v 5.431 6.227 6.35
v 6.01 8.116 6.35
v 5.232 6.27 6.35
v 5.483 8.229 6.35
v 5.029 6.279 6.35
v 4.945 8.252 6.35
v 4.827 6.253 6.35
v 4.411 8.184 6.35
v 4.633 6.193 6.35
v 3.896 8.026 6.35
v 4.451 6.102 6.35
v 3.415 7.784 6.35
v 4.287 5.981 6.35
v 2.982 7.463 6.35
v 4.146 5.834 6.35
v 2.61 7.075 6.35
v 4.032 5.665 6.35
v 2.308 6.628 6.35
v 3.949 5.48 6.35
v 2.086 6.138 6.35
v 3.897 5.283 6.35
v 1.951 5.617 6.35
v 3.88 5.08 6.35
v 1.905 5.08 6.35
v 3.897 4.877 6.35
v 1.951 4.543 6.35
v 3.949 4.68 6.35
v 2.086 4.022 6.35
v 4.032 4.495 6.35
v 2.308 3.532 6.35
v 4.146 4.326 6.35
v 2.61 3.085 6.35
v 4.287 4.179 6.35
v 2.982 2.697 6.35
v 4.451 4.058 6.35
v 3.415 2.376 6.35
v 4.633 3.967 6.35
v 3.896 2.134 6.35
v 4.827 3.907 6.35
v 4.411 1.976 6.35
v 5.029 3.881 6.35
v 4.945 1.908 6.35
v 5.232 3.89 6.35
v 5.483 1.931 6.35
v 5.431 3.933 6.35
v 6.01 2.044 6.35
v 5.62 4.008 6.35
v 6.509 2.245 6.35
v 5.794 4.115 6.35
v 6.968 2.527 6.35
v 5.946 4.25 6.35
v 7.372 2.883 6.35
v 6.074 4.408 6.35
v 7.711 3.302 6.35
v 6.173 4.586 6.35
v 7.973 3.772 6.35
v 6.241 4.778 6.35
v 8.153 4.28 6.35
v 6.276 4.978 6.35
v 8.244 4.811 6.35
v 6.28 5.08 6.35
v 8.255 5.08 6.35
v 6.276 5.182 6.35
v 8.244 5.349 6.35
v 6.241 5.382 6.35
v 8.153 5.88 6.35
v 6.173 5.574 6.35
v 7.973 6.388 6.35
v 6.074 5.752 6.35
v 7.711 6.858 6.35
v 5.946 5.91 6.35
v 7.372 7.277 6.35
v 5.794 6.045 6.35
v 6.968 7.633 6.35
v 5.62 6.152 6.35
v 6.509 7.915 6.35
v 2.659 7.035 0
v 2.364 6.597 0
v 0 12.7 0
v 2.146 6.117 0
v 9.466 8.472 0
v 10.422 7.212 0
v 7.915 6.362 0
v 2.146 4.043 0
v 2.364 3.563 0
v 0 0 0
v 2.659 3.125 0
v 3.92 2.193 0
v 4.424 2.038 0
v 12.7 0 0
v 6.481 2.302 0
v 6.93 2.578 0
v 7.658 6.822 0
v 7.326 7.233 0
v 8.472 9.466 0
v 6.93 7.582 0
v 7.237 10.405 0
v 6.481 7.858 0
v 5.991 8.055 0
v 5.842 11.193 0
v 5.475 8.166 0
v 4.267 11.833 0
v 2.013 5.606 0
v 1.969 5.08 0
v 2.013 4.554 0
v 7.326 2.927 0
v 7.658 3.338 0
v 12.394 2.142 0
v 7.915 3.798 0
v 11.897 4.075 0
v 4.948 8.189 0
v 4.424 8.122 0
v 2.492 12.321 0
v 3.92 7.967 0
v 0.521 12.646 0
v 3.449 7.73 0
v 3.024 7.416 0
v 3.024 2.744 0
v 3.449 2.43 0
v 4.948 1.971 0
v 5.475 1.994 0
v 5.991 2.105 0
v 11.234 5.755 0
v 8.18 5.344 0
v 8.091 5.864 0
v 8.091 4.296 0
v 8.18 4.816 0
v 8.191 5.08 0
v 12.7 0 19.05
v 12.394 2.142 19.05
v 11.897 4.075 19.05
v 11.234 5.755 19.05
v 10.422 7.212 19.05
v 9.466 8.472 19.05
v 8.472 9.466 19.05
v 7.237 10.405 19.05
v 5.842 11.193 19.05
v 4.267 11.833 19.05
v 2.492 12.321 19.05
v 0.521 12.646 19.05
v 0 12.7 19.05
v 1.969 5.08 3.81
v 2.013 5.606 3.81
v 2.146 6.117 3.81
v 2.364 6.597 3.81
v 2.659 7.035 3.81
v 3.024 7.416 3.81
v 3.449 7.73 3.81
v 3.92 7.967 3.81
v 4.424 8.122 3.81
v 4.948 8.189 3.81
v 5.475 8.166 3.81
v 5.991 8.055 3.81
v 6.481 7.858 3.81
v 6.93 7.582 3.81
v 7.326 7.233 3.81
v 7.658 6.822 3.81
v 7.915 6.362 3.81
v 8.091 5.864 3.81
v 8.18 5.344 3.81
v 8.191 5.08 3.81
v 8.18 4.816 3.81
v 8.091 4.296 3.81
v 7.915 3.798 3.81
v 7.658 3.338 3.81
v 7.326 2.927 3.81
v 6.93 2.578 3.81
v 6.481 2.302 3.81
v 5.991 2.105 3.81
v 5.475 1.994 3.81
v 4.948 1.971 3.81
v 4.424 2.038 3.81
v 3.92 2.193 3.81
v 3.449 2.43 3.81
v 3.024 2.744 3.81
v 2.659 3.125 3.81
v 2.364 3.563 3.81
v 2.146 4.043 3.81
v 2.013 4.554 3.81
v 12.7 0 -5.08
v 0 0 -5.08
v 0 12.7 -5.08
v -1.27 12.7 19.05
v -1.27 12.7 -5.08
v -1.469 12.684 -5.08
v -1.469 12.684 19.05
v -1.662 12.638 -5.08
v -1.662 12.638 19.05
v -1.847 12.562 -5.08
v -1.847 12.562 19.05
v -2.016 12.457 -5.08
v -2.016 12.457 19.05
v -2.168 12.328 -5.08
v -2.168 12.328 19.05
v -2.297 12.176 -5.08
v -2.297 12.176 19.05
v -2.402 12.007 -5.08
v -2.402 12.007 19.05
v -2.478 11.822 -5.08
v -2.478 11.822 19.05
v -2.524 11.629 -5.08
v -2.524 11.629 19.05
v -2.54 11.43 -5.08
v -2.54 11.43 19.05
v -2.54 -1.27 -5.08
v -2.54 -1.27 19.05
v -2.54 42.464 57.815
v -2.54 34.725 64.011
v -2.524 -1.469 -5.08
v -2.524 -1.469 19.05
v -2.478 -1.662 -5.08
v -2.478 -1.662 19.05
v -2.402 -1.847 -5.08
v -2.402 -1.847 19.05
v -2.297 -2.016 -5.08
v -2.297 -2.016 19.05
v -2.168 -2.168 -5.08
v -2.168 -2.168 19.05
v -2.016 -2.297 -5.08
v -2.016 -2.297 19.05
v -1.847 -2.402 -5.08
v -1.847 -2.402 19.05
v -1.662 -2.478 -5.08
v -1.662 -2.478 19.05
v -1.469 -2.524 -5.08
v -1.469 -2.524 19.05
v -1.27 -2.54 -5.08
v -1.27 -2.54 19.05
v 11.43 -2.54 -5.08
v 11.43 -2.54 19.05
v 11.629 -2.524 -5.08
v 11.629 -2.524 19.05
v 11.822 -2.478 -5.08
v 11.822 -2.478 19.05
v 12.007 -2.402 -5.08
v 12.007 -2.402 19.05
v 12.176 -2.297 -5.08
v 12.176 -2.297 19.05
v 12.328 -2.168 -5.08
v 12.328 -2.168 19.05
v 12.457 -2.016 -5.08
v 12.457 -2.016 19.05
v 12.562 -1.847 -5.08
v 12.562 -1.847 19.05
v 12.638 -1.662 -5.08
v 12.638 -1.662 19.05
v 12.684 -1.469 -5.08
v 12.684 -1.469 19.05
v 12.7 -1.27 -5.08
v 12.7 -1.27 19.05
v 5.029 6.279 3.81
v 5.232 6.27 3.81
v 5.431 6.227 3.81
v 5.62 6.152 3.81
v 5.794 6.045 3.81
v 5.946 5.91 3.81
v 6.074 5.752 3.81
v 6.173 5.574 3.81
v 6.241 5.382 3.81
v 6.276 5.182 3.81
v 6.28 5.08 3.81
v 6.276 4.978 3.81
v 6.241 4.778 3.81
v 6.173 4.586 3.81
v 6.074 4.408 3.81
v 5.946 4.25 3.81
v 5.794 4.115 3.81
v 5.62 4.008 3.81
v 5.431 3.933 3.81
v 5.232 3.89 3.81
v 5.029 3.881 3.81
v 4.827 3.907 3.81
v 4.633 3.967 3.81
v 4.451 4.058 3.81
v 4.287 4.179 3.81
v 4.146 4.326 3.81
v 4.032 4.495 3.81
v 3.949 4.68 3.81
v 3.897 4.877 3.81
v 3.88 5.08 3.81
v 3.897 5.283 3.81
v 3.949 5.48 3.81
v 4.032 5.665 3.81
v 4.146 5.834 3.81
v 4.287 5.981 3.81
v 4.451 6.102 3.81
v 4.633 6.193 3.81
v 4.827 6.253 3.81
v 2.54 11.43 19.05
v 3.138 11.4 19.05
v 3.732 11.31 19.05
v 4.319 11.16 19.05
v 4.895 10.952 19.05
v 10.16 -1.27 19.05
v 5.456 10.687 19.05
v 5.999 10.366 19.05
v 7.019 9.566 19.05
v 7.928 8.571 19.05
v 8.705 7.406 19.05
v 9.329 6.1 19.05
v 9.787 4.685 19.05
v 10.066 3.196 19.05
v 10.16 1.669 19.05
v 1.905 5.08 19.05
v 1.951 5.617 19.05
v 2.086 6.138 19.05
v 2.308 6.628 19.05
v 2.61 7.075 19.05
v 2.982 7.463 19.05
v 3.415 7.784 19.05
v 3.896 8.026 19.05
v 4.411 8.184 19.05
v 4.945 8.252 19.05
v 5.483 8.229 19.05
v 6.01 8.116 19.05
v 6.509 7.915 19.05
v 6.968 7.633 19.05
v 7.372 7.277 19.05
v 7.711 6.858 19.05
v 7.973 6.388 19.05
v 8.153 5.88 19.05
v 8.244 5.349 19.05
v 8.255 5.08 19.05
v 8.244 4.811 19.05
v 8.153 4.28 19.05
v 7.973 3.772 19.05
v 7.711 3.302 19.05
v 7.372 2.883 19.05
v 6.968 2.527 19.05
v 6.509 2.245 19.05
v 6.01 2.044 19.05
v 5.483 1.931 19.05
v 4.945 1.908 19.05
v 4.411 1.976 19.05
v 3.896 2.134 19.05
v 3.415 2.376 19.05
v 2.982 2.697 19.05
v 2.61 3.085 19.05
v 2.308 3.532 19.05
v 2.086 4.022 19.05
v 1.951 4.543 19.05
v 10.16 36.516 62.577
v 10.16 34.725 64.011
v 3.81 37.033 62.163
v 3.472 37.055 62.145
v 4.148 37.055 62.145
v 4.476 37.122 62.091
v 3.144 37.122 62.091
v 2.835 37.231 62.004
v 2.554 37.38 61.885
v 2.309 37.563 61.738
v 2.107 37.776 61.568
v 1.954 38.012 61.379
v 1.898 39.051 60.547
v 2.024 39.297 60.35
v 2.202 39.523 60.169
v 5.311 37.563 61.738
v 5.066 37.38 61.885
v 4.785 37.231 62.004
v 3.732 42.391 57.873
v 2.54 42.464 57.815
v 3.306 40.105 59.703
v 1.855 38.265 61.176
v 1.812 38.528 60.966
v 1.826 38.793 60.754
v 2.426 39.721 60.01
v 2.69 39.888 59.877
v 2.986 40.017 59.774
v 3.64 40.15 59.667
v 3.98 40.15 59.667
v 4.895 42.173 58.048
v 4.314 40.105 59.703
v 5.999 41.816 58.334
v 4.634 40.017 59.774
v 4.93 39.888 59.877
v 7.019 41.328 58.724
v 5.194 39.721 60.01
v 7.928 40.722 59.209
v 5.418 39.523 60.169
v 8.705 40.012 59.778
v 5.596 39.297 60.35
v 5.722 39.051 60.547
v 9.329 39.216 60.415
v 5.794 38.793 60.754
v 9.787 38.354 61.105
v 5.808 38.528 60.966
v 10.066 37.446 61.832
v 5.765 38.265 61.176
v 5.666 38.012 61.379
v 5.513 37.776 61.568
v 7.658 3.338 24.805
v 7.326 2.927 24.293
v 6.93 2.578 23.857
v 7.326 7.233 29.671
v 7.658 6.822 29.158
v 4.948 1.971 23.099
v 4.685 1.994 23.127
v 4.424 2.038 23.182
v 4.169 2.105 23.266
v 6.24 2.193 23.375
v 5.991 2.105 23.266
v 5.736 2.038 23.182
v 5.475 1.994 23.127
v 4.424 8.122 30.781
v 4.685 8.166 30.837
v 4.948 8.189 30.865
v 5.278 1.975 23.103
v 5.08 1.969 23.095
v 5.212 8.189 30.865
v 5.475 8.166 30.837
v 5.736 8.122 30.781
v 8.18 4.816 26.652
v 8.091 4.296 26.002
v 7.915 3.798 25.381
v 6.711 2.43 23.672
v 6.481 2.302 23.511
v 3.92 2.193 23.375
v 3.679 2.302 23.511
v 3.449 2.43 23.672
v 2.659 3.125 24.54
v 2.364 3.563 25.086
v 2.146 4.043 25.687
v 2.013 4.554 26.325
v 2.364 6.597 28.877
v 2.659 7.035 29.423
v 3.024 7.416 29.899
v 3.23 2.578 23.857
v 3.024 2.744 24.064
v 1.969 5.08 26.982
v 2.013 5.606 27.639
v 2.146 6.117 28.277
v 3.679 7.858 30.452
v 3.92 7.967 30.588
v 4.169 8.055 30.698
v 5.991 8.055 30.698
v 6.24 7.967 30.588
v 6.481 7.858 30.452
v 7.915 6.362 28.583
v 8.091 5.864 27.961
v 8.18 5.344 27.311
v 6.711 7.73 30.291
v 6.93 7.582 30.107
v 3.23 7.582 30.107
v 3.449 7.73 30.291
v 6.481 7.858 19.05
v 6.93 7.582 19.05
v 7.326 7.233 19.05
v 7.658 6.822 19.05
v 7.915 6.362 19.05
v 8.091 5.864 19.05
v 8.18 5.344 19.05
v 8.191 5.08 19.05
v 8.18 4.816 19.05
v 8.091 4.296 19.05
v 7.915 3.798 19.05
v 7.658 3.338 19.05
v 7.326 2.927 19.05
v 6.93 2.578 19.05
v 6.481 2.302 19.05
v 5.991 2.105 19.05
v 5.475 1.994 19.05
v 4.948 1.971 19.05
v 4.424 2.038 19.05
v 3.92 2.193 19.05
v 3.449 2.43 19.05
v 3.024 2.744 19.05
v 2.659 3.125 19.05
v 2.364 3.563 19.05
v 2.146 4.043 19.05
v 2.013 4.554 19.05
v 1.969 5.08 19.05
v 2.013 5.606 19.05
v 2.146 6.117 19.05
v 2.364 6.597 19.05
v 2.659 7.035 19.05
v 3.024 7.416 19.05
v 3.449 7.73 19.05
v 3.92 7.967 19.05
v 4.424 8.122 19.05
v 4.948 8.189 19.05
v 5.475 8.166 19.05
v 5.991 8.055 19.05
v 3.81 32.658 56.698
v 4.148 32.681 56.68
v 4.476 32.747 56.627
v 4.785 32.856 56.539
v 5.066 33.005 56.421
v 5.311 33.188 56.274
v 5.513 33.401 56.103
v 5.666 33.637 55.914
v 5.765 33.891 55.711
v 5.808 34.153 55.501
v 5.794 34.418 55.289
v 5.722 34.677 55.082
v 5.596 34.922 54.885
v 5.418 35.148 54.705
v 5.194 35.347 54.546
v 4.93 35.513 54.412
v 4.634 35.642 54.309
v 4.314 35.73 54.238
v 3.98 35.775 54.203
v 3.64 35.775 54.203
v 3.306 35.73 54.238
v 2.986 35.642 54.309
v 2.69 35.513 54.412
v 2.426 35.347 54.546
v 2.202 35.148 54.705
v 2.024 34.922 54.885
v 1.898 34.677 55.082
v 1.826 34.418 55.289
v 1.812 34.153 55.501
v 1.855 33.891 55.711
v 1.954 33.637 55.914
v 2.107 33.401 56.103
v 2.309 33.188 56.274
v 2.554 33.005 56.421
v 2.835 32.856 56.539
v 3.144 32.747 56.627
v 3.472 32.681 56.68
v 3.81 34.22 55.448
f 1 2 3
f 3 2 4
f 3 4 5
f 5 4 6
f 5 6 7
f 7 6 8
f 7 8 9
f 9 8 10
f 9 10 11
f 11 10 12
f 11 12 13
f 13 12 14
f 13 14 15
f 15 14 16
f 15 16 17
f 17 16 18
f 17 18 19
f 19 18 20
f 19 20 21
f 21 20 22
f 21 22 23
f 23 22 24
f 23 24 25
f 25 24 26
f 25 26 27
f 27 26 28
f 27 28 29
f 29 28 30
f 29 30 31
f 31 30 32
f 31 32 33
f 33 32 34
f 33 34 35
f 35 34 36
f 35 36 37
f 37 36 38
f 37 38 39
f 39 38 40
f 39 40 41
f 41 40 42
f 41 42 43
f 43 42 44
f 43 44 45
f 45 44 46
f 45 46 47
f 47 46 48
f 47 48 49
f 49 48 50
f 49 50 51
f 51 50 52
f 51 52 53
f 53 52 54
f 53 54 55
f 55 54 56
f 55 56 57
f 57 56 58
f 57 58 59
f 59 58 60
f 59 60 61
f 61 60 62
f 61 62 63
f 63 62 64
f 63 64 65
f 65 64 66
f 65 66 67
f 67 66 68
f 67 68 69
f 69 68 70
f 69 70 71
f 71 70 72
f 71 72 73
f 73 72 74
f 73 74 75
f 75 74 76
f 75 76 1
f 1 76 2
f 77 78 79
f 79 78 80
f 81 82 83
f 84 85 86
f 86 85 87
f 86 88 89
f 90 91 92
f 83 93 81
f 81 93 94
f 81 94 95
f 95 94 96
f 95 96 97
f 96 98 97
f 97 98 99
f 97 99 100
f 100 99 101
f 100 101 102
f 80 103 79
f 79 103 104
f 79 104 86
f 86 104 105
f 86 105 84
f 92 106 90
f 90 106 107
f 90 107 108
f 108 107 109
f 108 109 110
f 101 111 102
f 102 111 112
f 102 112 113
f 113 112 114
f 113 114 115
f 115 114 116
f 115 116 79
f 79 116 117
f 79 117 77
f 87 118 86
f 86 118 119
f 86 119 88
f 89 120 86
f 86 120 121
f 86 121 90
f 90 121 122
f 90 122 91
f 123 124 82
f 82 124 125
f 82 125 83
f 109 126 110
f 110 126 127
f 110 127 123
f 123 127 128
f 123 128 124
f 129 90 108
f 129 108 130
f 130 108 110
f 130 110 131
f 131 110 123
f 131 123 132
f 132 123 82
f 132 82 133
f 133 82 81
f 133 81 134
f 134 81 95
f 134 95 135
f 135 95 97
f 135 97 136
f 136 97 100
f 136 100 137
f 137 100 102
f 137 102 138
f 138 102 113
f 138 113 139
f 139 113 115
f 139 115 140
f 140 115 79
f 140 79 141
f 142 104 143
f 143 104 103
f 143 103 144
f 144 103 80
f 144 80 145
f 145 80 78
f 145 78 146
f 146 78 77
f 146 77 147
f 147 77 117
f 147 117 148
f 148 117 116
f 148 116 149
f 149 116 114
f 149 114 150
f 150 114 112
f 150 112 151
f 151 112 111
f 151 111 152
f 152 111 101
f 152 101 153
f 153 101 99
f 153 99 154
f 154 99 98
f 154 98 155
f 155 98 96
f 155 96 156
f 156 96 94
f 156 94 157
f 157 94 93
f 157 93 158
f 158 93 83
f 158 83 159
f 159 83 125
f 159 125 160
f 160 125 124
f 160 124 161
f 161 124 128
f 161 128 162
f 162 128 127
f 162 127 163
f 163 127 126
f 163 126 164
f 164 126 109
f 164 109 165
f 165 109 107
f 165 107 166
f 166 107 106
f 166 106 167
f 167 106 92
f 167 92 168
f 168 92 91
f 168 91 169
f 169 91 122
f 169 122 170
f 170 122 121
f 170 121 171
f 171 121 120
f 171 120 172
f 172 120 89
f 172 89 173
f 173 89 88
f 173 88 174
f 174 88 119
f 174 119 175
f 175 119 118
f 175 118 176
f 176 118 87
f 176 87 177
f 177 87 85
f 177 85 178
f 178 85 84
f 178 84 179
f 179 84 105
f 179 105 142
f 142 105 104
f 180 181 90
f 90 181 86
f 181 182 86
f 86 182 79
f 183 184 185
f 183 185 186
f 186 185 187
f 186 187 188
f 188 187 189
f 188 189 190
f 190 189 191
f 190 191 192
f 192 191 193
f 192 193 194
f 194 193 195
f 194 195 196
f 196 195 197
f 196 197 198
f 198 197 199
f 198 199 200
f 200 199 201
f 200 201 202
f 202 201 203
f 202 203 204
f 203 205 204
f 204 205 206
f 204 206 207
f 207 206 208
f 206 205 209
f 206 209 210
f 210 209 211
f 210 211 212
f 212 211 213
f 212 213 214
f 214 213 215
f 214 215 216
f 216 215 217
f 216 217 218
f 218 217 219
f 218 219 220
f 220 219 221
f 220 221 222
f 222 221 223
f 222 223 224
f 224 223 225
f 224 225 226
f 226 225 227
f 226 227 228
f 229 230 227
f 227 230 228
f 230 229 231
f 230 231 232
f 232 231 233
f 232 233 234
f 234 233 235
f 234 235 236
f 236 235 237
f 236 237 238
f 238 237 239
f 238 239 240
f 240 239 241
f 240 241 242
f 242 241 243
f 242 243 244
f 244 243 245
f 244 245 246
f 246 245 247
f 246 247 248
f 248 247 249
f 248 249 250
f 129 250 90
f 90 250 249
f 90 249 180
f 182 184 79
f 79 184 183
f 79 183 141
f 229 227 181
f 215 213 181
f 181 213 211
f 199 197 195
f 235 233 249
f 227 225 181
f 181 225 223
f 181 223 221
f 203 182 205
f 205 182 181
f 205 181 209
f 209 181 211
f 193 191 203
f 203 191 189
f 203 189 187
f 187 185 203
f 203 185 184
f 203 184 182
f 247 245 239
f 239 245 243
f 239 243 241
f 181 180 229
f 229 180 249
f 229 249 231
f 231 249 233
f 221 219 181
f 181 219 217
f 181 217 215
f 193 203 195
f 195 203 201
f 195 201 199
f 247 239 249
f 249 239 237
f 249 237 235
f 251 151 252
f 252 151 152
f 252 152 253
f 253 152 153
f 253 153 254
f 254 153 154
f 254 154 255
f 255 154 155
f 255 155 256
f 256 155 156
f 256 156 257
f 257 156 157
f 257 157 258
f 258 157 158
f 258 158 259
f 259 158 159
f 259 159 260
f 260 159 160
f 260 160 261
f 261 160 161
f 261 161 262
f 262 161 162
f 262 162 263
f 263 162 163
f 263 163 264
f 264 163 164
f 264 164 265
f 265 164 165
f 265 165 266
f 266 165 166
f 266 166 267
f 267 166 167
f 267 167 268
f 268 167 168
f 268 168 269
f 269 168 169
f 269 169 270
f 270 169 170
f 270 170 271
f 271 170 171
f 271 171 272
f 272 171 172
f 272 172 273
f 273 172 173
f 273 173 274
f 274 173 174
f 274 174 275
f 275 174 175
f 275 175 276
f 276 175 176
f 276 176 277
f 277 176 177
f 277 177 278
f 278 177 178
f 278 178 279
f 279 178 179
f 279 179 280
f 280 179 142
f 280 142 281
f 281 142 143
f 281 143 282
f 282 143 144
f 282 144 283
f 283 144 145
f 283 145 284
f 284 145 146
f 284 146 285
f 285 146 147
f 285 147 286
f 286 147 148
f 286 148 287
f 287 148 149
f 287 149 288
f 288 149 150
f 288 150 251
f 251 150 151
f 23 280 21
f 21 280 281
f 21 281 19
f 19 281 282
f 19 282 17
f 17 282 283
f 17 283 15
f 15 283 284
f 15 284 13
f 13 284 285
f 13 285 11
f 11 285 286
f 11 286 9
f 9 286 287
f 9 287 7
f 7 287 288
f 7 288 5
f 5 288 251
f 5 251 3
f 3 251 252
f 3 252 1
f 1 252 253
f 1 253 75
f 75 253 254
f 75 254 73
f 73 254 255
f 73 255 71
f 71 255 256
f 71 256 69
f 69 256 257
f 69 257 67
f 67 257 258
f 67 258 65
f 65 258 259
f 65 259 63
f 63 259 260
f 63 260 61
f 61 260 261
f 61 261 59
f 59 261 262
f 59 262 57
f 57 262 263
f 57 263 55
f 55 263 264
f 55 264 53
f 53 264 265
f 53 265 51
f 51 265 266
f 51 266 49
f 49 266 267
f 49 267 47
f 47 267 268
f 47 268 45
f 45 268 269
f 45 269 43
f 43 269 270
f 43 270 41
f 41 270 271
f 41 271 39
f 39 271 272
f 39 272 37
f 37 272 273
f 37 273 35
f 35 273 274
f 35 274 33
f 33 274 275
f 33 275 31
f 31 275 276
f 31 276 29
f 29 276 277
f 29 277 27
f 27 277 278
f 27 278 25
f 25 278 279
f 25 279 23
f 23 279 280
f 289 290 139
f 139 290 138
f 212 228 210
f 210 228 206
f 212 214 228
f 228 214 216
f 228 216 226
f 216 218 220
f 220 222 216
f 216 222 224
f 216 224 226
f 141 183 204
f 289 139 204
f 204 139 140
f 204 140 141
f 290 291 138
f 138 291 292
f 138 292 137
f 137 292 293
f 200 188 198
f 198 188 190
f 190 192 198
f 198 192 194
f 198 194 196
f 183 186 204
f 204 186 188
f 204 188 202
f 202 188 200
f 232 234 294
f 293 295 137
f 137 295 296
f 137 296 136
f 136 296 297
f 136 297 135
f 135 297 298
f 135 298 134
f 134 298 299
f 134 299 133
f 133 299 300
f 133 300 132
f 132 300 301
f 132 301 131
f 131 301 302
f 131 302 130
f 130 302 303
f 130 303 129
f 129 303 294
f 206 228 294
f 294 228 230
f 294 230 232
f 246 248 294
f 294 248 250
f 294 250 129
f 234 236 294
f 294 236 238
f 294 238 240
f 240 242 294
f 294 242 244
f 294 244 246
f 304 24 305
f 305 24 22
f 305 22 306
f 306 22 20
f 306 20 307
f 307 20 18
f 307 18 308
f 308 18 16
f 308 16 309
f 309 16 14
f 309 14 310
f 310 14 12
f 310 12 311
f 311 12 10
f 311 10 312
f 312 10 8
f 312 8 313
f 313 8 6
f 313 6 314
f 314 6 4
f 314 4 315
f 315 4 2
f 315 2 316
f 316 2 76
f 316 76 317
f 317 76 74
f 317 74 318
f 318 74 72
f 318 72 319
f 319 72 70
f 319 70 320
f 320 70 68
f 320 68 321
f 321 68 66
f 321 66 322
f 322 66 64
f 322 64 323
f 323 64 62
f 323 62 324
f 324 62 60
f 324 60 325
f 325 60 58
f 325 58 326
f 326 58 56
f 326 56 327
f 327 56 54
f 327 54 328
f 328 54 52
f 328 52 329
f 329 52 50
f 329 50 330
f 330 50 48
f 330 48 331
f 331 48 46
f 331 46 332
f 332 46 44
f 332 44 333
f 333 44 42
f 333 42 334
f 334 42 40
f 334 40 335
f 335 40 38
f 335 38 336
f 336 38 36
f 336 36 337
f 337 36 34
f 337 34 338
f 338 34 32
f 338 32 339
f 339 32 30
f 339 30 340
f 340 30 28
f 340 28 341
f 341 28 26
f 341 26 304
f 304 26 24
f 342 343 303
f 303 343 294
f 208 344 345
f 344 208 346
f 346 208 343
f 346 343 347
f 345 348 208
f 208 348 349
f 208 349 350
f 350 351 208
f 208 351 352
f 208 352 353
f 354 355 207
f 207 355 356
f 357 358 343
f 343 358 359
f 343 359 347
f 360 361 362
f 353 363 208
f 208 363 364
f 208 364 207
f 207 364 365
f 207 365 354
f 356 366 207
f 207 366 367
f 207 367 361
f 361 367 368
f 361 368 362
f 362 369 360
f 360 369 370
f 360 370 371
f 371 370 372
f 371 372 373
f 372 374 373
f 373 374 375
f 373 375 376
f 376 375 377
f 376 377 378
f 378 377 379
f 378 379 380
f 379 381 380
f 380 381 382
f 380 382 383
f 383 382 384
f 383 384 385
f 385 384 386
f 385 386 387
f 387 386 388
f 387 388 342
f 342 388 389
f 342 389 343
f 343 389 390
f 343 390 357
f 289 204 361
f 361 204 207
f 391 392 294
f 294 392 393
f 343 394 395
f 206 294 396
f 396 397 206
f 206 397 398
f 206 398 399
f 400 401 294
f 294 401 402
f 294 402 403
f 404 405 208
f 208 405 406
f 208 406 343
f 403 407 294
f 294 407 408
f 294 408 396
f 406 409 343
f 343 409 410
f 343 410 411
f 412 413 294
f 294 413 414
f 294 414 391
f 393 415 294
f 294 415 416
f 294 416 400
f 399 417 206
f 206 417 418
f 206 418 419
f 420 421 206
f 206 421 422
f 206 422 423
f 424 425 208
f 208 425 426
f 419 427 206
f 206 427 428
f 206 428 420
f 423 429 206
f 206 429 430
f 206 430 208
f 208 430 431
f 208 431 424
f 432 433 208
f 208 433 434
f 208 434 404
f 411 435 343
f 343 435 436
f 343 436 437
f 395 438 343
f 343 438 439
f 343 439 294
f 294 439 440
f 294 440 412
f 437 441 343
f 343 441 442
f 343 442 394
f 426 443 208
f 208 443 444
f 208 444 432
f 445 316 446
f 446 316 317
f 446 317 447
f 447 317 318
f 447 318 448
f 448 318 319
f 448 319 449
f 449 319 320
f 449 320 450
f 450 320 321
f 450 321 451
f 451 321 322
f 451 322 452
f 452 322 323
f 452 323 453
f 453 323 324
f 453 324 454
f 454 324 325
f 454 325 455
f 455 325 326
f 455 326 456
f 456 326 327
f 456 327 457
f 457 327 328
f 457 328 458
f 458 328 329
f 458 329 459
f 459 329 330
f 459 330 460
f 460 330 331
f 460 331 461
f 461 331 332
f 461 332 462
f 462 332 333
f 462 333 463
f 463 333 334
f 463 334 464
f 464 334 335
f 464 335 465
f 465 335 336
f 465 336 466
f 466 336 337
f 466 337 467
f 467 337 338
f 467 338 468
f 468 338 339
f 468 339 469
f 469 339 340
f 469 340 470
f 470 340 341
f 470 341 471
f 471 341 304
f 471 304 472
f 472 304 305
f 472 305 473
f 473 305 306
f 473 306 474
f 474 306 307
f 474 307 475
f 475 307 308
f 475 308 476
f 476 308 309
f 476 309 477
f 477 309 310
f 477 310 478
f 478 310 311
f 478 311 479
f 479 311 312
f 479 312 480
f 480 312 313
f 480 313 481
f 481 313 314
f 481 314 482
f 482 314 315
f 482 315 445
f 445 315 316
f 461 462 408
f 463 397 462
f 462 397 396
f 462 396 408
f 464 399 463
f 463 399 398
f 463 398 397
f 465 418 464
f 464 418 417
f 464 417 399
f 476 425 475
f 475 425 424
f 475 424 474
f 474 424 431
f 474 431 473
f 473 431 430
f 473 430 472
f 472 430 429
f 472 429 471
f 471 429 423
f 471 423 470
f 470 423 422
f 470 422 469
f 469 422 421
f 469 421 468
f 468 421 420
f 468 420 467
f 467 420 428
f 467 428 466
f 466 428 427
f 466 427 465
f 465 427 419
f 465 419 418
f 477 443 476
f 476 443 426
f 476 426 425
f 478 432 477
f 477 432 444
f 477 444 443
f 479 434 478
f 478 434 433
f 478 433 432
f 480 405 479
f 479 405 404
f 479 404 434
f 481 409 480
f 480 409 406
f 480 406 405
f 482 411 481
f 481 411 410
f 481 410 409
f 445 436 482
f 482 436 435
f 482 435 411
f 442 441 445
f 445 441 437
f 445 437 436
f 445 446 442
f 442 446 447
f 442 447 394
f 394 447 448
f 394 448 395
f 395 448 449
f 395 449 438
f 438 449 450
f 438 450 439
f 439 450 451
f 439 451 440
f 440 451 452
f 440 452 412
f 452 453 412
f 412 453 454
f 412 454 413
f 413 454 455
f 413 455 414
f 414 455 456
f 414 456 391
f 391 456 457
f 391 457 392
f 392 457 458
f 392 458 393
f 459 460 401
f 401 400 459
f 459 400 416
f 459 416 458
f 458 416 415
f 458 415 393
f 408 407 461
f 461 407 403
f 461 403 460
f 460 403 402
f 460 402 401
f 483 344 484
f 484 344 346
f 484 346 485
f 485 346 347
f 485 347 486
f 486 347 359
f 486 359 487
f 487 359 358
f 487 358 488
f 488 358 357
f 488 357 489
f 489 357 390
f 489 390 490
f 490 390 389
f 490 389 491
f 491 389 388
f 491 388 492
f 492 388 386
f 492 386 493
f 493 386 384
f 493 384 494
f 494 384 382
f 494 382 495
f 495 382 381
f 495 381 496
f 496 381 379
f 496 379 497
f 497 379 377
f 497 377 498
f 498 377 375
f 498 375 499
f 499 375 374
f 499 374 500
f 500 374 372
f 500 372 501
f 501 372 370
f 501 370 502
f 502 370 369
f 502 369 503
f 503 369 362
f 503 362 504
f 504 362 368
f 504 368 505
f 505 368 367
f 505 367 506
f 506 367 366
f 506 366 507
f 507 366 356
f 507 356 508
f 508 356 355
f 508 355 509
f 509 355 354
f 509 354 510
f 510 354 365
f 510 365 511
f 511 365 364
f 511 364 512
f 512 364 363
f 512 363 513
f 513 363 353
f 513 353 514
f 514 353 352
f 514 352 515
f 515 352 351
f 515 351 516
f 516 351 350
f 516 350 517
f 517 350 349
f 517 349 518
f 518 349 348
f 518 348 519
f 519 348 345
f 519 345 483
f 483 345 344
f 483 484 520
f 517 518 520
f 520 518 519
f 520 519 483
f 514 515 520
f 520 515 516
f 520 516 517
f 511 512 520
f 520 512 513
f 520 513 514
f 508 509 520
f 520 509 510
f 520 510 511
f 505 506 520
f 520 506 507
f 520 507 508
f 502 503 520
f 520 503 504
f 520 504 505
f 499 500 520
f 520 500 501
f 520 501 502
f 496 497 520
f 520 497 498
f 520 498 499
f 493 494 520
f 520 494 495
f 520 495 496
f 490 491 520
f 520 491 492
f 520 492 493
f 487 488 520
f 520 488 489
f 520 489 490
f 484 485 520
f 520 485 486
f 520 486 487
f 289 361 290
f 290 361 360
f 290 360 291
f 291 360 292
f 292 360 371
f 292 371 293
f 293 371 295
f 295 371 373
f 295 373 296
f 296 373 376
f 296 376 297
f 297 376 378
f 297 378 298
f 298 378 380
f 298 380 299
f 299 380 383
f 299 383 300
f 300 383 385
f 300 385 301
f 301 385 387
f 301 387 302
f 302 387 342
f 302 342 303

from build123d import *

# Parameters (mm, degrees)
SKETCH1_R                = 3.1115
BOSS_EXTRUDE1_DEPTH      = 3.81
BOSS_EXTRUDE2_DEPTH      = 5.08
BOSS_EXTRUDE2_DEPTH_BACK = 3.81
BOSS_EXTRUDE3_START      = 2.54
SKETCH3_R                = 1.2
BOSS_EXTRUDE3_DEPTH      = 2.54
BOSS_EXTRUDE4_START      = 12.7
SKETCH4_R                = 3.175
BOSS_EXTRUDE4_DEPTH      = 12.7
BOSS_EXTRUDE5_DEPTH      = 12.7
SKETCH7_R                = 3.1115
CUT_EXTRUDE1_DEPTH       = 64.134377028
SKETCH9_R                = 2.000000064
CUT_EXTRUDE2_DEPTH       = 6.99999997
FILLET1_R                = 7.62


with BuildPart() as part:
    # Sketch1 → Boss-Extrude1 (new body)
    with BuildSketch(Plane.XY):
        with BuildLine():
            Line((0, 0), (12.7, 0))
            add(Edge.make_bspline(
                [(0, 12.7), (11.620302725, 11.620302725), (12.7, 0)],
                knots=[0, 0, 0, 1, 1, 1], degree=2))
            Line((0, 12.7), (0, 0))
        make_face()
        with Locations(Location((5.08, 5.08, 0), (0, 0, 180))):
            Circle(SKETCH1_R, mode=Mode.SUBTRACT)
    extrude(amount=BOSS_EXTRUDE1_DEPTH)

    # Sketch2 → Boss-Extrude2 (add, two sides: drawn at the far end of the back side and taken through both)
    with BuildSketch(Plane(origin=(0, 0, 0), x_dir=(-1, 0, 0), z_dir=(0, 0, -1)).offset(-BOSS_EXTRUDE2_DEPTH_BACK)):
        with BuildLine():
            Line((0, 12.7), (1.27, 12.7))
            ThreePointArc((1.27, 12.7), (2.168025612, 12.328025612), (2.54, 11.43))
            Line((2.54, 11.43), (2.54, -1.27))
            ThreePointArc((2.54, -1.27), (2.168025612, -2.168025612), (1.27, -2.54))
            Line((1.27, -2.54), (-11.43, -2.54))
            ThreePointArc((-11.43, -2.54), (-12.328025612, -2.168025612), (-12.7, -1.27))
            Line((-12.7, -1.27), (-12.7, 0))
            Line((-12.7, 0), (0, 0))
            Line((0, 0), (0, 12.7))
        make_face()
    extrude(amount=BOSS_EXTRUDE2_DEPTH + BOSS_EXTRUDE2_DEPTH_BACK)

    # Sketch3 → Boss-Extrude3 (add)
    with BuildSketch(Plane.XY.offset(3.81).offset(BOSS_EXTRUDE3_START)):
        with BuildLine():
            Line((-2.54, 11.43), (-2.54, -1.27))
            ThreePointArc((-2.54, -1.27), (-2.168025612, -2.168025612), (-1.27, -2.54))
            Line((-1.27, -2.54), (11.43, -2.54))
            ThreePointArc((11.43, -2.54), (12.328025612, -2.168025612), (12.7, -1.27))
            Line((12.7, -1.27), (12.7, 0))
            add(Edge.make_bspline(
                [(0, 12.7), (11.620302725, 11.620302725), (12.7, 0)],
                knots=[0, 0, 0, 1, 1, 1], degree=2))
            Line((0, 12.7), (-1.27, 12.7))
            ThreePointArc((-1.27, 12.7), (-2.168025612, 12.328025612), (-2.54, 11.43))
        make_face()
        with Locations((5.08, 5.08)):
            Circle(SKETCH3_R, mode=Mode.SUBTRACT)
    extrude(amount=-BOSS_EXTRUDE3_DEPTH)

    # Sketch4 → Boss-Extrude4 (add)
    with BuildSketch(Plane.XY.offset(6.35).offset(BOSS_EXTRUDE4_START)):
        with BuildLine():
            Line((-2.54, 11.43), (-2.54, -1.27))
            ThreePointArc((-2.54, -1.27), (-2.168025612, -2.168025612), (-1.27, -2.54))
            Line((-1.27, -2.54), (11.43, -2.54))
            ThreePointArc((11.43, -2.54), (12.328025612, -2.168025612), (12.7, -1.27))
            Line((12.7, -1.27), (12.7, 0))
            add(Edge.make_bspline(
                [(0, 12.7), (11.620302725, 11.620302725), (12.7, 0)],
                knots=[0, 0, 0, 1, 1, 1], degree=2))
            Line((0, 12.7), (-1.27, 12.7))
            ThreePointArc((-1.27, 12.7), (-2.168025612, 12.328025612), (-2.54, 11.43))
        make_face()
        with Locations((5.08, 5.08)):
            Circle(SKETCH4_R, mode=Mode.SUBTRACT)
    extrude(amount=-BOSS_EXTRUDE4_DEPTH)

    # Sketch8 → Boss-Extrude5 (add)
    with BuildSketch(Plane.ZY.offset(2.54)):
        Polygon((19.05, 11.43), (19.05, -1.27), (64.010676082, 34.724533506), (57.814573212, 42.464069123), align=None)
    extrude(amount=-BOSS_EXTRUDE5_DEPTH)

    # Sketch7 → Cut-Extrude1 (cut, through all)
    with BuildSketch(Plane.XY.offset(19.05)):
        with Locations(Location((5.08, 5.08, 0), (0, 0, 180))):
            Circle(SKETCH7_R)
    extrude(amount=CUT_EXTRUDE1_DEPTH, mode=Mode.SUBTRACT)

    # Sketch9 → Cut-Extrude2 (cut)
    with BuildSketch(Plane(origin=(0, 44.792641372, 55.95036922), x_dir=(1, 0, 0), z_dir=(0, 0.624970196645459, 0.7806486106469008))):
        with Locations(Location((3.81, -7.939987304, 0), (0, 0, 270))):
            Circle(SKETCH9_R)
    extrude(amount=-CUT_EXTRUDE2_DEPTH, mode=Mode.SUBTRACT)

    # Fillet1
    # the kernel refuses this fillet: 7.62 mm, written as the material it takes off along each edge
    with BuildSketch(Plane(origin=(10.16, 54.369751369, 72.685929245), x_dir=(0, -0.7806486106469015, 0.6249701966454579), z_dir=(0, -0.6249701966454579, -0.7806486106469015))) as fillet1_piece_1_section:
        with BuildLine():
            CenterArc((FILLET1_R, FILLET1_R), FILLET1_R, 180, 90)
            Line((0, FILLET1_R), (0, 0))
            Line((0, 0), (FILLET1_R, 0))
        make_face()
    fillet1_piece_1 = extrude(amount=87.756878503, mode=Mode.PRIVATE)
    fillet1_piece_1 = split(fillet1_piece_1, bisect_by=Plane(origin=(8.453079593, 31.089805897, 19.05), z_dir=(0, 0, 1)), keep=Keep.TOP, mode=Mode.PRIVATE)
    add(fillet1_piece_1, mode=Mode.SUBTRACT)


solid = part.part
